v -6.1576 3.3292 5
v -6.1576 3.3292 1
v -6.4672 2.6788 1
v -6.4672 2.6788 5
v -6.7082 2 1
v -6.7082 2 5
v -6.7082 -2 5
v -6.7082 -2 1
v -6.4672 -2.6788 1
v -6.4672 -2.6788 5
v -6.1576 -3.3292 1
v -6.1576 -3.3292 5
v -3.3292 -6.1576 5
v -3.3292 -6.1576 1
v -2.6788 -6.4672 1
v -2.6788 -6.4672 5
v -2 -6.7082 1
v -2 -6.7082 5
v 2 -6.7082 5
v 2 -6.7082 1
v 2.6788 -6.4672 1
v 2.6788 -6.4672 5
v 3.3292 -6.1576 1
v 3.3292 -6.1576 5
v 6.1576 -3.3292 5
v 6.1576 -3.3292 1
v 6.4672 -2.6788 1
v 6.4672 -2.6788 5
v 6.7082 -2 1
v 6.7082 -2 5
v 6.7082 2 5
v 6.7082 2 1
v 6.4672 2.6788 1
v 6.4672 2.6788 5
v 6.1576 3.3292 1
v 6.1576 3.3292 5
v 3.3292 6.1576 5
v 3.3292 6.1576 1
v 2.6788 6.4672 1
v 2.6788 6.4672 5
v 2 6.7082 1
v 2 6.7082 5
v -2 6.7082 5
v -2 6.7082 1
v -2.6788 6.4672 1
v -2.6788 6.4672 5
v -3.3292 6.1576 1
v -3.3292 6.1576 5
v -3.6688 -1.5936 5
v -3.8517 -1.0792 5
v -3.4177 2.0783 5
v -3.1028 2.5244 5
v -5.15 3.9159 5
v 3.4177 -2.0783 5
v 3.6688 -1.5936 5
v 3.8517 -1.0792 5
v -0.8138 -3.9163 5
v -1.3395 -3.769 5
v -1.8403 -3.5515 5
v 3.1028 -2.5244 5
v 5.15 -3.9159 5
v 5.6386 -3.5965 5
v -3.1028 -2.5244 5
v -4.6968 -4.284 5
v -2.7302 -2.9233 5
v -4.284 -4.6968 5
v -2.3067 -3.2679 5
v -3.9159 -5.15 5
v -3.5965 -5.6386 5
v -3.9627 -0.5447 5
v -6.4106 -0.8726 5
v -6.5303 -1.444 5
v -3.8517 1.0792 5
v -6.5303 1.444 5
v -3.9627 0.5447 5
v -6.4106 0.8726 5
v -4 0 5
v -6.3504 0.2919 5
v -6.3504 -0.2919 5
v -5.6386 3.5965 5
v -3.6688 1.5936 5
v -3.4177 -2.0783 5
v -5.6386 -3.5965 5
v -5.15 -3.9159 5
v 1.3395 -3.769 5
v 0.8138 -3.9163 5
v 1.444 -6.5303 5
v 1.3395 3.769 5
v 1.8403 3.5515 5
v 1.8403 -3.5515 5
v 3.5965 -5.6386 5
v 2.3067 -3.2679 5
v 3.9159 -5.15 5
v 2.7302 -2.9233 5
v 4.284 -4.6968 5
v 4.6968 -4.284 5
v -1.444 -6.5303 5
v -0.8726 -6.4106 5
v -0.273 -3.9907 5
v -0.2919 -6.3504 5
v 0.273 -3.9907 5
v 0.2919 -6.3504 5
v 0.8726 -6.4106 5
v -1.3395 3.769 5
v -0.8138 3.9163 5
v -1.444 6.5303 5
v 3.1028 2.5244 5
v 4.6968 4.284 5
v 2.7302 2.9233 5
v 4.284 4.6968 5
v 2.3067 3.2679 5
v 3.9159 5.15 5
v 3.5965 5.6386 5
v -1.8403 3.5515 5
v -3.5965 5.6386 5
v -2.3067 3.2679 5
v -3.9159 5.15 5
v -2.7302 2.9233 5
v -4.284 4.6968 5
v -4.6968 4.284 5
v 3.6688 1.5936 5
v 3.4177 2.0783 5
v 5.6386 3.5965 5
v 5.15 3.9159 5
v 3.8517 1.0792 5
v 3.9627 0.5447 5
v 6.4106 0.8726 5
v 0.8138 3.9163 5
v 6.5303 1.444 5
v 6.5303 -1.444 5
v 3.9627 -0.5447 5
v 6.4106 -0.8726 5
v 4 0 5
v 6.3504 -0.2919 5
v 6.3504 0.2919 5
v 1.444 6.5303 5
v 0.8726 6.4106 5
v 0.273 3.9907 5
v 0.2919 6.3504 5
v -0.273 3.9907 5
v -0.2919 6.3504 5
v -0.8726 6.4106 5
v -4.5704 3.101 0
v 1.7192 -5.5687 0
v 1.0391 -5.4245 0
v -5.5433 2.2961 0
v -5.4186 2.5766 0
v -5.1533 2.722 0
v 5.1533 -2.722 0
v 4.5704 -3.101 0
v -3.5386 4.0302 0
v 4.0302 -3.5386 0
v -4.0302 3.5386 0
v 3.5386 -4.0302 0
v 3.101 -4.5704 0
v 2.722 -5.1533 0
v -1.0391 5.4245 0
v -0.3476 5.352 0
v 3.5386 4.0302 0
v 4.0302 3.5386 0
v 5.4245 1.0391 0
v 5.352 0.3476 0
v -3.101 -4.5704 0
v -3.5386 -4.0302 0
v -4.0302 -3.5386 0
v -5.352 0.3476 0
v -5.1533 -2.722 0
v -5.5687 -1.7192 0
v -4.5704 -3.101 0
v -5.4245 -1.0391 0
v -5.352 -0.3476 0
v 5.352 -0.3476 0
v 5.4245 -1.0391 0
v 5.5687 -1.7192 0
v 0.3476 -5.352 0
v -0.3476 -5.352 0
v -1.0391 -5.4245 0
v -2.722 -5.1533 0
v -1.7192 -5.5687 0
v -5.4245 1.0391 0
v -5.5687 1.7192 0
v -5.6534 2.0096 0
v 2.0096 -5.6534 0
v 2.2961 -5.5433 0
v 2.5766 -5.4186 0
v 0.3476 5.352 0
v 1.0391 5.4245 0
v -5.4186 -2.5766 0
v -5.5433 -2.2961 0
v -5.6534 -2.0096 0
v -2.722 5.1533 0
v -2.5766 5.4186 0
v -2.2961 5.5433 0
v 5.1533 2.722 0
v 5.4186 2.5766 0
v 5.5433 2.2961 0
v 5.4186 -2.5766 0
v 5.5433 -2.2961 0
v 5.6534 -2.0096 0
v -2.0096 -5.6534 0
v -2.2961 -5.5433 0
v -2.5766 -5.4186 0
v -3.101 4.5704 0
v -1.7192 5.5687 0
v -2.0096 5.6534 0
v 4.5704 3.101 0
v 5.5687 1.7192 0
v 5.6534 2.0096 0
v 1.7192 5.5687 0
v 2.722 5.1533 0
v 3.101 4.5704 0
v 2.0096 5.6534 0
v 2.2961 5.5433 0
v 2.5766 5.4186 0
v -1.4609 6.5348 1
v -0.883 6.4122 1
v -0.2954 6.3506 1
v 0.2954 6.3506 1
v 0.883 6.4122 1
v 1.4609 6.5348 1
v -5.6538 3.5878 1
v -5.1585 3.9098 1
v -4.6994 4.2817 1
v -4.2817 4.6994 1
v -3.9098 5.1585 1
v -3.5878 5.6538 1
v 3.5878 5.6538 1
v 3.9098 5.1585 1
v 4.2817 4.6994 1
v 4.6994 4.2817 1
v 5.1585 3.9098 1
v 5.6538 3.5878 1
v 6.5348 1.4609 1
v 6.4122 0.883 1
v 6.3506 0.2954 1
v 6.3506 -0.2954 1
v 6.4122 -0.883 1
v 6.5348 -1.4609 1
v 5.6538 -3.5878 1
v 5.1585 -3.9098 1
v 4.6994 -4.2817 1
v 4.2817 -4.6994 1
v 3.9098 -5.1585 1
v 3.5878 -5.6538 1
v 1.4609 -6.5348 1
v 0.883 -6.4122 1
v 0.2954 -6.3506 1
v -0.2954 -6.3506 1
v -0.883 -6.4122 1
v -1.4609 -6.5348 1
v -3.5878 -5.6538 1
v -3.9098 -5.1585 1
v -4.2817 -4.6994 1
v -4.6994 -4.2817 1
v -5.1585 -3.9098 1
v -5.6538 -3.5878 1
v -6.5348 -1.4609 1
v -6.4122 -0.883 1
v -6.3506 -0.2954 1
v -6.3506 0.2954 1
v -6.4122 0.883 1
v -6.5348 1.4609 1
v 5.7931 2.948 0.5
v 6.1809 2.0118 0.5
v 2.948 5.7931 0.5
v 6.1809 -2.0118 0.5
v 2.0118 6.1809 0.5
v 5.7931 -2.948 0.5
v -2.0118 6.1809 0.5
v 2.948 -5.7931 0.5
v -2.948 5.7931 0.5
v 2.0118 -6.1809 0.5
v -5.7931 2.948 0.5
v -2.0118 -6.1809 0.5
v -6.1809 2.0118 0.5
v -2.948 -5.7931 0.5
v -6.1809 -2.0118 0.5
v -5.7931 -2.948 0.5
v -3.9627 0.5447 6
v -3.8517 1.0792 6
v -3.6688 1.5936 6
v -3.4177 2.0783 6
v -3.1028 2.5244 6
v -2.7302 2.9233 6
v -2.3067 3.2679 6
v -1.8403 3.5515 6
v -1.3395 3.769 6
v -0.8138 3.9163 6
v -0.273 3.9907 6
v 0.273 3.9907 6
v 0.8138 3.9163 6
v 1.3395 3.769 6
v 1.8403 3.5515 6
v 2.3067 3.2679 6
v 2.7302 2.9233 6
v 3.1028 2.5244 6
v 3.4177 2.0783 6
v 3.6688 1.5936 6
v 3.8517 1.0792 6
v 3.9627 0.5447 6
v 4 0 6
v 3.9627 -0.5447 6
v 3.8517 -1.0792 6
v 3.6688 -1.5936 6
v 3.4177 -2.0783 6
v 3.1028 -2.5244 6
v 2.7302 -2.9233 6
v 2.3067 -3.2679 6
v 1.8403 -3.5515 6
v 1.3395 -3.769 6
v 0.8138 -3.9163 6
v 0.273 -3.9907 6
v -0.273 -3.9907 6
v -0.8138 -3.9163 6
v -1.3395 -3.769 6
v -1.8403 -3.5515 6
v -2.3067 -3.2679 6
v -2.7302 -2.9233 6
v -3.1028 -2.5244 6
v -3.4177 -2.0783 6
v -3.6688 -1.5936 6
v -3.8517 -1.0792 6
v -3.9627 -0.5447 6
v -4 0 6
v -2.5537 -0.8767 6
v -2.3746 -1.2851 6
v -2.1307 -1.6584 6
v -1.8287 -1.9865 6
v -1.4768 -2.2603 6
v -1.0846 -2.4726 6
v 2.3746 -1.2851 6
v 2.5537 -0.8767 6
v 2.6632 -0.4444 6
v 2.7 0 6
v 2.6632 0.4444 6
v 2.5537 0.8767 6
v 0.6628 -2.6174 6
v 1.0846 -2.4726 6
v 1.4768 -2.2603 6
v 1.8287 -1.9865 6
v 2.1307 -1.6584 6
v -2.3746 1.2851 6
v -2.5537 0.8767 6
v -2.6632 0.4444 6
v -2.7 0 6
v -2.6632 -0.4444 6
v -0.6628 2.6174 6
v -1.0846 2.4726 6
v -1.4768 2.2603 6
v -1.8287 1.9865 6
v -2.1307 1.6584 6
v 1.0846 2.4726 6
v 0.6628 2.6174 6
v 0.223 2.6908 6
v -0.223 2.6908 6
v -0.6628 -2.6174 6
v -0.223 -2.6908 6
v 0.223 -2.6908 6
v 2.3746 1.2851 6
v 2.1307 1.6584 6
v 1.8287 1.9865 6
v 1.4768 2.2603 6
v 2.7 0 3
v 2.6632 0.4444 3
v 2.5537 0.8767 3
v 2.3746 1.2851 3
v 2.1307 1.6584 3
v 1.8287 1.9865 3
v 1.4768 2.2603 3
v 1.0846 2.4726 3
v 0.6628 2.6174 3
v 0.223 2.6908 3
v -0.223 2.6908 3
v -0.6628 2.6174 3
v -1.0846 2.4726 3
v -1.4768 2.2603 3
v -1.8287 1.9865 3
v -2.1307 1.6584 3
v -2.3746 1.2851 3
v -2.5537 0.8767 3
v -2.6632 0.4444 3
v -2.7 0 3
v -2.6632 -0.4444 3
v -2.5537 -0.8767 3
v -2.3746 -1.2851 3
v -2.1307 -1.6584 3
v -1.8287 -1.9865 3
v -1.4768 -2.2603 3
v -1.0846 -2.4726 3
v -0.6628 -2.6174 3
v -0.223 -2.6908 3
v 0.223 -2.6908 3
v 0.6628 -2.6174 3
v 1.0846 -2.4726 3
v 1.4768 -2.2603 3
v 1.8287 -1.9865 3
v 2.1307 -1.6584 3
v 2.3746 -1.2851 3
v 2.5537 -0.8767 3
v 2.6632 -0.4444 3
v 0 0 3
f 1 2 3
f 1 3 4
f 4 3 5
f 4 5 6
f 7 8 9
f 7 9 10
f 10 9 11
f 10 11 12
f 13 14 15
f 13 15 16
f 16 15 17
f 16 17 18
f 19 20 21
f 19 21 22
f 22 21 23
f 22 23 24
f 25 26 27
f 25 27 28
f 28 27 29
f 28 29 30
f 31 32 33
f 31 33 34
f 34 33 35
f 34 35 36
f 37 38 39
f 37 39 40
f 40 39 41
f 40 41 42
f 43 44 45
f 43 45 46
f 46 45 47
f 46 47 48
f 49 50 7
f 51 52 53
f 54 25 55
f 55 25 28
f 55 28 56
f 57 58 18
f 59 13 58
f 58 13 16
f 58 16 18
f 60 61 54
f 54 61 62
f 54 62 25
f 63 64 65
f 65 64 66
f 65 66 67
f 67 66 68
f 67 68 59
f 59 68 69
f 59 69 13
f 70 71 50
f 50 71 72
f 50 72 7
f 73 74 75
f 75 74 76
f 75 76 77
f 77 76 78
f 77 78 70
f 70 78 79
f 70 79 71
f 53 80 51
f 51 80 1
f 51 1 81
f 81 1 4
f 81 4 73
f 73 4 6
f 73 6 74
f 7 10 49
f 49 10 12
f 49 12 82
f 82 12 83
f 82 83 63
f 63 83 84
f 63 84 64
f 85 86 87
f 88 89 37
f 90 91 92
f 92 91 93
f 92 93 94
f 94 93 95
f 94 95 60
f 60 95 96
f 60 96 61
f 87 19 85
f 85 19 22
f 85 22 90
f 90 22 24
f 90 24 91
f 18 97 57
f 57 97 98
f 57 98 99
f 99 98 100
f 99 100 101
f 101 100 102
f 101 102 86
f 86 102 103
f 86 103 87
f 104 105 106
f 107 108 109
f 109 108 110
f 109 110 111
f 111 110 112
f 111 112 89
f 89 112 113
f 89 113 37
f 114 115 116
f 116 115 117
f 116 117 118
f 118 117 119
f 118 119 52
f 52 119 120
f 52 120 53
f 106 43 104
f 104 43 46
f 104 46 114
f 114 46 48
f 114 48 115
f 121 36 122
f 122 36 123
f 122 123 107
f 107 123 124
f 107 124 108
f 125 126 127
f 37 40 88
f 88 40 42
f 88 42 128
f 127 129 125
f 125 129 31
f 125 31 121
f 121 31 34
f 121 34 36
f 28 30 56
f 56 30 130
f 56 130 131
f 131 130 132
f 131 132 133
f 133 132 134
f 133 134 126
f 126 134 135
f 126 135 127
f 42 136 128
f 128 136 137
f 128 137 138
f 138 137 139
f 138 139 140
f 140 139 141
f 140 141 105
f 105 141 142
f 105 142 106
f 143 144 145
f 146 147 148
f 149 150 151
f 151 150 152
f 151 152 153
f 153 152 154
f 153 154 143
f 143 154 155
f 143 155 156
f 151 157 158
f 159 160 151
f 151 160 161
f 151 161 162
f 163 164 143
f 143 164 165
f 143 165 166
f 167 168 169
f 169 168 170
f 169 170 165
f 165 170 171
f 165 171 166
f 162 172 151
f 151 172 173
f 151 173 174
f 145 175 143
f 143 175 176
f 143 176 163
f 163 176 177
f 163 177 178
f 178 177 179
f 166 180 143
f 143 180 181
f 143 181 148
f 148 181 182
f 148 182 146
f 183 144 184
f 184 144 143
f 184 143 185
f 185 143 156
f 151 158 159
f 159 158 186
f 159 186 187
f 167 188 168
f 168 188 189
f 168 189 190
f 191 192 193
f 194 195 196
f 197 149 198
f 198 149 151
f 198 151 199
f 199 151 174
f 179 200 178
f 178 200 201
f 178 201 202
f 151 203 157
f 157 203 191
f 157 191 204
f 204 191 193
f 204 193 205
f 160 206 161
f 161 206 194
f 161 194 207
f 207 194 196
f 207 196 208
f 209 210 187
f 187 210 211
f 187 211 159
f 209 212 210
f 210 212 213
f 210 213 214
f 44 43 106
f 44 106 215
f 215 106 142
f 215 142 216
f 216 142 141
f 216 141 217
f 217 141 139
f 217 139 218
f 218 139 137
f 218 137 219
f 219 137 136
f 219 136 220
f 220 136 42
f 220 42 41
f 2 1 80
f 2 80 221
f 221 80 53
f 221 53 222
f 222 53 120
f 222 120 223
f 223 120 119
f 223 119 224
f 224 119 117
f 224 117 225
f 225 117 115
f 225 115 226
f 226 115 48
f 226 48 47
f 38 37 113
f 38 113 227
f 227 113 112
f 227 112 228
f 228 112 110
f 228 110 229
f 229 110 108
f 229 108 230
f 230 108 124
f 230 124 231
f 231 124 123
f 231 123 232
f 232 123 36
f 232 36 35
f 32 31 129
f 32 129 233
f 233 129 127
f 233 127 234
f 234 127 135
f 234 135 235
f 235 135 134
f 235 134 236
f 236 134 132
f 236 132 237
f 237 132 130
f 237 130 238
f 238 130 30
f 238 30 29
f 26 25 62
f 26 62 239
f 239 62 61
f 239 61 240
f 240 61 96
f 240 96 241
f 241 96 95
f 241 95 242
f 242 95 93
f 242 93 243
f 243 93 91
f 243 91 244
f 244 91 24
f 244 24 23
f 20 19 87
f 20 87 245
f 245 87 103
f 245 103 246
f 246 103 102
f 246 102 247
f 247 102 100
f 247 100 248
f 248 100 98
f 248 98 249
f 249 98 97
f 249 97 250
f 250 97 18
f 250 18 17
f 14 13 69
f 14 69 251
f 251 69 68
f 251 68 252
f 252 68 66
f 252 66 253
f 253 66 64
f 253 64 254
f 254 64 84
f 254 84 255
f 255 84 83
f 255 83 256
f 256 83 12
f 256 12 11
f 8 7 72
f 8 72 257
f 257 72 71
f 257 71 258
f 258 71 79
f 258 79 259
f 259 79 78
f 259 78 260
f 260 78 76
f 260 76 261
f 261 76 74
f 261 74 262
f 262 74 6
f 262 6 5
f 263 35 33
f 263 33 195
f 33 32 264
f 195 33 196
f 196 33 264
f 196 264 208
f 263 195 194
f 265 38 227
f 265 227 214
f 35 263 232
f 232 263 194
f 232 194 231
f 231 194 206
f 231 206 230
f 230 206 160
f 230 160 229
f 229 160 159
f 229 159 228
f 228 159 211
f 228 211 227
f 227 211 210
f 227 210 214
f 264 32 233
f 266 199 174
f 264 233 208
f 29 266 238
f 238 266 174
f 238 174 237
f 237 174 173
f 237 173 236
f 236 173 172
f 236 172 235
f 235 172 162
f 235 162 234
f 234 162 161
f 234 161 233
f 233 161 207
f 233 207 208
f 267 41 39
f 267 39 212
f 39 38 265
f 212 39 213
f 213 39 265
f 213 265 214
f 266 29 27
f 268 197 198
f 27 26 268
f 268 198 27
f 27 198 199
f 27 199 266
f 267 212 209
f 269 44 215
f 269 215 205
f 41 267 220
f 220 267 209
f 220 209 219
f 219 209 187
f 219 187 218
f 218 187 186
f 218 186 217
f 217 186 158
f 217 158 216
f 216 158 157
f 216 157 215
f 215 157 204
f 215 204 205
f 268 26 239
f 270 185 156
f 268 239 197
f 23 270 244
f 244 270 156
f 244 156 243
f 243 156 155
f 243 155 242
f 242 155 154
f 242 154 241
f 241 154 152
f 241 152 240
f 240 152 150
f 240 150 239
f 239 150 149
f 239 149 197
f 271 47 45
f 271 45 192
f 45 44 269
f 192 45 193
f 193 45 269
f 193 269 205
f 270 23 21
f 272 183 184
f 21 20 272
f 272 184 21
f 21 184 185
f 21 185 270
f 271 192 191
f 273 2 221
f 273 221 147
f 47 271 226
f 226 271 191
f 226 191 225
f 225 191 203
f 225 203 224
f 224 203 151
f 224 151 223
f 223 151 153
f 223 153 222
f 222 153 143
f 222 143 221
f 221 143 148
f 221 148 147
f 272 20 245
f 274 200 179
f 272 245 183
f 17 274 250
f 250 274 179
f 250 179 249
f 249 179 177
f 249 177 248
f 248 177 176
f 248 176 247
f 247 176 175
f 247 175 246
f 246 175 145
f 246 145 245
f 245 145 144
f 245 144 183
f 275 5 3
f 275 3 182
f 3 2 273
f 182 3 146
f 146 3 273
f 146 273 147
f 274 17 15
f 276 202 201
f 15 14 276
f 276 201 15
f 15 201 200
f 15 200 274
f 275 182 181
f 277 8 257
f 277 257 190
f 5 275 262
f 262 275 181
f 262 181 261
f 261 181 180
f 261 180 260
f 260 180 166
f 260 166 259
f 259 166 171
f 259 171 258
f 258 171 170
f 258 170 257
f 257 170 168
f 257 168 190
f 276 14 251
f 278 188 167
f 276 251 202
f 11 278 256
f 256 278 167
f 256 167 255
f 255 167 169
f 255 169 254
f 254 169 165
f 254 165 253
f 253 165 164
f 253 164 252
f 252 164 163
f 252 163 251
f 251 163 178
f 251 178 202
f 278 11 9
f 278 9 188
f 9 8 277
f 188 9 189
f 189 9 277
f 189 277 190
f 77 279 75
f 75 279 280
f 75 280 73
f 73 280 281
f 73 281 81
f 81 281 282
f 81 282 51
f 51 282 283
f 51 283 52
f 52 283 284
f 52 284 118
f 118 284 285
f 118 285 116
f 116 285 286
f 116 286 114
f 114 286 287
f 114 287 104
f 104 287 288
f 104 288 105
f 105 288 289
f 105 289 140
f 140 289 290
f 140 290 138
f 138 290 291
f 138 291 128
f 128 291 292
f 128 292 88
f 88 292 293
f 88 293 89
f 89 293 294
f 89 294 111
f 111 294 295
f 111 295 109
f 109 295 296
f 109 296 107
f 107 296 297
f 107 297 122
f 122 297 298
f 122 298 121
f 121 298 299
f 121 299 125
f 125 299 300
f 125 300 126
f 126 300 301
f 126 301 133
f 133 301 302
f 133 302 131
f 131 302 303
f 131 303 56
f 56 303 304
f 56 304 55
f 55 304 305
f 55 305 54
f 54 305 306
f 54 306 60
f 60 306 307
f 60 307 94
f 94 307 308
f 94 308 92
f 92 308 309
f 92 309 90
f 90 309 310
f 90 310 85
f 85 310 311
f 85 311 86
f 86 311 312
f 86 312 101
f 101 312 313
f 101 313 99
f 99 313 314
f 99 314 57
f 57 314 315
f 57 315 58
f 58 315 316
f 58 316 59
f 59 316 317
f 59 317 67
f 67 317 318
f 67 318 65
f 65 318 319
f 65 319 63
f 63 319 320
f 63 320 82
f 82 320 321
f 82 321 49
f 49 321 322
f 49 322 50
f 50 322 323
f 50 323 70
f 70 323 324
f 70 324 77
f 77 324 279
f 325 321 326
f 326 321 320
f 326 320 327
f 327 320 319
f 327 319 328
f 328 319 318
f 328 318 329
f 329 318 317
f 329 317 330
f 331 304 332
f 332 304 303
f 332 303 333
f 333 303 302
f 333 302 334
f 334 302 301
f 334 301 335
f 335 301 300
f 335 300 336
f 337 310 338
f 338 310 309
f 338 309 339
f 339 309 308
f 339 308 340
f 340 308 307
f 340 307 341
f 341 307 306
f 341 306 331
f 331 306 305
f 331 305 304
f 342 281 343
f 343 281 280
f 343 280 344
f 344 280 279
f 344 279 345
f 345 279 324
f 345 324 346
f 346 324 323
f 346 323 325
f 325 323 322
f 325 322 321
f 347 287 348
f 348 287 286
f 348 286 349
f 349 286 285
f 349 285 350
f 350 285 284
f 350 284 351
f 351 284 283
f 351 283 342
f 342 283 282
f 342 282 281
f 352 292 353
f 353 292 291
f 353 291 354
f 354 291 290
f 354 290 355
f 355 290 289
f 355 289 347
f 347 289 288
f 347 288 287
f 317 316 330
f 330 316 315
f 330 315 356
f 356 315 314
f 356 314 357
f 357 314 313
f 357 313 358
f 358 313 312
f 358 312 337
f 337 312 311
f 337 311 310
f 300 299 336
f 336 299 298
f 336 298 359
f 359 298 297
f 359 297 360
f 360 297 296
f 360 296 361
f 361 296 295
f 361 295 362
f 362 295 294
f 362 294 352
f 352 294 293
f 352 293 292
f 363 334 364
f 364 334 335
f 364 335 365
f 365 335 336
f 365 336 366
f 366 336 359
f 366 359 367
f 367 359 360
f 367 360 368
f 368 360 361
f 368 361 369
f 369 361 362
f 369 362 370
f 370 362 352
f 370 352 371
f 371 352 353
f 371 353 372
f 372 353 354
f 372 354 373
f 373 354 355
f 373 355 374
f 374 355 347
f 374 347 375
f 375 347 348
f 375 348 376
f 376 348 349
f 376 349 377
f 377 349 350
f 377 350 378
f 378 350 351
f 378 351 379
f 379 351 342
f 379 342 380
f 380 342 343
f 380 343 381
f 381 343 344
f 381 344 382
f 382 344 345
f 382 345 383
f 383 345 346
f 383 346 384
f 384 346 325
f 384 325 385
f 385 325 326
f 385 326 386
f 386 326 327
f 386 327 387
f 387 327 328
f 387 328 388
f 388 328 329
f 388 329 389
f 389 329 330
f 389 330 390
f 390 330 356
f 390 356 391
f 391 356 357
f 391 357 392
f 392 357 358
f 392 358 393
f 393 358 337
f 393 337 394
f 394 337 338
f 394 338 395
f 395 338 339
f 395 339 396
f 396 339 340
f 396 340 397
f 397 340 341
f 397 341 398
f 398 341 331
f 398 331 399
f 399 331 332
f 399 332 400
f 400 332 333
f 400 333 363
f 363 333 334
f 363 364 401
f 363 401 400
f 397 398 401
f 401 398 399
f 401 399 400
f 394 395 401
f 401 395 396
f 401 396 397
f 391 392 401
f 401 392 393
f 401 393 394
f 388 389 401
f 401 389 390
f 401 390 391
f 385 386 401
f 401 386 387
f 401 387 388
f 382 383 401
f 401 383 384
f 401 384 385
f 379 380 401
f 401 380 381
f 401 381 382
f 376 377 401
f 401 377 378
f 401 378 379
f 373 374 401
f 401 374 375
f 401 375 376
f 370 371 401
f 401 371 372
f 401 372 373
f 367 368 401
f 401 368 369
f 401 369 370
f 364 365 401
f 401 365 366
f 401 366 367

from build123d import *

# Parameters (mm, degrees)
ESQUISSE1_R                  = 7
BOSS_EXTRU_1_DEPTH           = 5
ENL_V_MAT_EXTRU_2_DEPTH      = 6
R_P_TITION_CIRCULAIRE1_COUNT = 8
CHANFREIN1_SIZE              = 1
ESQUISSE3_R                  = 4
BOSS_EXTRU_2_DEPTH           = 1
ESQUISSE4_R                  = 2.7
ENL_V_MAT_EXTRU_3_DEPTH      = 3


with BuildPart() as part:
    # Esquisse1 → Boss.-Extru.1 (new body)
    with BuildSketch(Plane.XY):
        Circle(ESQUISSE1_R)
    extrude(amount=BOSS_EXTRU_1_DEPTH)

    # Esquisse2 → Enlèv. mat.-Extru.2 (cut, through all)
    with BuildSketch(Plane.XY.offset(5)):
        with BuildLine():
            ThreePointArc((2, 6.708203932), (0, 6.342871257), (-2, 6.708203932))
            ThreePointArc((-2, 6.708203932), (0, 7), (2, 6.708203932))
        make_face()
    enl_v_mat_extru_2 = extrude(amount=-ENL_V_MAT_EXTRU_2_DEPTH, mode=Mode.SUBTRACT)

    # Répétition circulaire1: Enlèv. mat.-Extru.2 ×8 about axis
    r_p_tition_circulaire1_axis = Axis((0, 0, 0), (0, 0, 1))
    for i in range(1, R_P_TITION_CIRCULAIRE1_COUNT):
        add(enl_v_mat_extru_2.rotate(r_p_tition_circulaire1_axis, i * 360 / R_P_TITION_CIRCULAIRE1_COUNT), mode=Mode.SUBTRACT)

    # Chanfrein1
    chanfrein1_edges = [part.edges().sort_by_distance(p)[0] for p in [
        (-6.467156728, 2.678784027, 0),
        (-6.467156728, -2.678784027, 0),
        (-2.678784027, -6.467156728, 0),
        (2.678784027, -6.467156728, 0),
        (6.467156728, -2.678784027, 0),
        (6.467156728, 2.678784027, 0),
        (2.678784027, 6.467156728, 0),
        (-6.342871257, 0, 0),
        (-4.485087278, -4.485087278, 0),
        (0, -6.342871257, 0),
        (4.485087278, -4.485087278, 0),
        (6.342871257, 0, 0),
        (4.485087278, 4.485087278, 0),
        (-2.678784027, 6.467156728, 0),
        (-4.485087278, 4.485087278, 0),
        (0, 6.342871257, 0),
    ]]
    chamfer(chanfrein1_edges, length=CHANFREIN1_SIZE)

    # Esquisse3 → Boss.-Extru.2 (add)
    with BuildSketch(Plane.XY.offset(5)):
        Circle(ESQUISSE3_R)
    extrude(amount=BOSS_EXTRU_2_DEPTH)

    # Esquisse4 → Enlèv. mat.-Extru.3 (cut)
    with BuildSketch(Plane.XY.offset(6)):
        Circle(ESQUISSE4_R)
    extrude(amount=-ENL_V_MAT_EXTRU_3_DEPTH, mode=Mode.SUBTRACT)


solid = part.part
